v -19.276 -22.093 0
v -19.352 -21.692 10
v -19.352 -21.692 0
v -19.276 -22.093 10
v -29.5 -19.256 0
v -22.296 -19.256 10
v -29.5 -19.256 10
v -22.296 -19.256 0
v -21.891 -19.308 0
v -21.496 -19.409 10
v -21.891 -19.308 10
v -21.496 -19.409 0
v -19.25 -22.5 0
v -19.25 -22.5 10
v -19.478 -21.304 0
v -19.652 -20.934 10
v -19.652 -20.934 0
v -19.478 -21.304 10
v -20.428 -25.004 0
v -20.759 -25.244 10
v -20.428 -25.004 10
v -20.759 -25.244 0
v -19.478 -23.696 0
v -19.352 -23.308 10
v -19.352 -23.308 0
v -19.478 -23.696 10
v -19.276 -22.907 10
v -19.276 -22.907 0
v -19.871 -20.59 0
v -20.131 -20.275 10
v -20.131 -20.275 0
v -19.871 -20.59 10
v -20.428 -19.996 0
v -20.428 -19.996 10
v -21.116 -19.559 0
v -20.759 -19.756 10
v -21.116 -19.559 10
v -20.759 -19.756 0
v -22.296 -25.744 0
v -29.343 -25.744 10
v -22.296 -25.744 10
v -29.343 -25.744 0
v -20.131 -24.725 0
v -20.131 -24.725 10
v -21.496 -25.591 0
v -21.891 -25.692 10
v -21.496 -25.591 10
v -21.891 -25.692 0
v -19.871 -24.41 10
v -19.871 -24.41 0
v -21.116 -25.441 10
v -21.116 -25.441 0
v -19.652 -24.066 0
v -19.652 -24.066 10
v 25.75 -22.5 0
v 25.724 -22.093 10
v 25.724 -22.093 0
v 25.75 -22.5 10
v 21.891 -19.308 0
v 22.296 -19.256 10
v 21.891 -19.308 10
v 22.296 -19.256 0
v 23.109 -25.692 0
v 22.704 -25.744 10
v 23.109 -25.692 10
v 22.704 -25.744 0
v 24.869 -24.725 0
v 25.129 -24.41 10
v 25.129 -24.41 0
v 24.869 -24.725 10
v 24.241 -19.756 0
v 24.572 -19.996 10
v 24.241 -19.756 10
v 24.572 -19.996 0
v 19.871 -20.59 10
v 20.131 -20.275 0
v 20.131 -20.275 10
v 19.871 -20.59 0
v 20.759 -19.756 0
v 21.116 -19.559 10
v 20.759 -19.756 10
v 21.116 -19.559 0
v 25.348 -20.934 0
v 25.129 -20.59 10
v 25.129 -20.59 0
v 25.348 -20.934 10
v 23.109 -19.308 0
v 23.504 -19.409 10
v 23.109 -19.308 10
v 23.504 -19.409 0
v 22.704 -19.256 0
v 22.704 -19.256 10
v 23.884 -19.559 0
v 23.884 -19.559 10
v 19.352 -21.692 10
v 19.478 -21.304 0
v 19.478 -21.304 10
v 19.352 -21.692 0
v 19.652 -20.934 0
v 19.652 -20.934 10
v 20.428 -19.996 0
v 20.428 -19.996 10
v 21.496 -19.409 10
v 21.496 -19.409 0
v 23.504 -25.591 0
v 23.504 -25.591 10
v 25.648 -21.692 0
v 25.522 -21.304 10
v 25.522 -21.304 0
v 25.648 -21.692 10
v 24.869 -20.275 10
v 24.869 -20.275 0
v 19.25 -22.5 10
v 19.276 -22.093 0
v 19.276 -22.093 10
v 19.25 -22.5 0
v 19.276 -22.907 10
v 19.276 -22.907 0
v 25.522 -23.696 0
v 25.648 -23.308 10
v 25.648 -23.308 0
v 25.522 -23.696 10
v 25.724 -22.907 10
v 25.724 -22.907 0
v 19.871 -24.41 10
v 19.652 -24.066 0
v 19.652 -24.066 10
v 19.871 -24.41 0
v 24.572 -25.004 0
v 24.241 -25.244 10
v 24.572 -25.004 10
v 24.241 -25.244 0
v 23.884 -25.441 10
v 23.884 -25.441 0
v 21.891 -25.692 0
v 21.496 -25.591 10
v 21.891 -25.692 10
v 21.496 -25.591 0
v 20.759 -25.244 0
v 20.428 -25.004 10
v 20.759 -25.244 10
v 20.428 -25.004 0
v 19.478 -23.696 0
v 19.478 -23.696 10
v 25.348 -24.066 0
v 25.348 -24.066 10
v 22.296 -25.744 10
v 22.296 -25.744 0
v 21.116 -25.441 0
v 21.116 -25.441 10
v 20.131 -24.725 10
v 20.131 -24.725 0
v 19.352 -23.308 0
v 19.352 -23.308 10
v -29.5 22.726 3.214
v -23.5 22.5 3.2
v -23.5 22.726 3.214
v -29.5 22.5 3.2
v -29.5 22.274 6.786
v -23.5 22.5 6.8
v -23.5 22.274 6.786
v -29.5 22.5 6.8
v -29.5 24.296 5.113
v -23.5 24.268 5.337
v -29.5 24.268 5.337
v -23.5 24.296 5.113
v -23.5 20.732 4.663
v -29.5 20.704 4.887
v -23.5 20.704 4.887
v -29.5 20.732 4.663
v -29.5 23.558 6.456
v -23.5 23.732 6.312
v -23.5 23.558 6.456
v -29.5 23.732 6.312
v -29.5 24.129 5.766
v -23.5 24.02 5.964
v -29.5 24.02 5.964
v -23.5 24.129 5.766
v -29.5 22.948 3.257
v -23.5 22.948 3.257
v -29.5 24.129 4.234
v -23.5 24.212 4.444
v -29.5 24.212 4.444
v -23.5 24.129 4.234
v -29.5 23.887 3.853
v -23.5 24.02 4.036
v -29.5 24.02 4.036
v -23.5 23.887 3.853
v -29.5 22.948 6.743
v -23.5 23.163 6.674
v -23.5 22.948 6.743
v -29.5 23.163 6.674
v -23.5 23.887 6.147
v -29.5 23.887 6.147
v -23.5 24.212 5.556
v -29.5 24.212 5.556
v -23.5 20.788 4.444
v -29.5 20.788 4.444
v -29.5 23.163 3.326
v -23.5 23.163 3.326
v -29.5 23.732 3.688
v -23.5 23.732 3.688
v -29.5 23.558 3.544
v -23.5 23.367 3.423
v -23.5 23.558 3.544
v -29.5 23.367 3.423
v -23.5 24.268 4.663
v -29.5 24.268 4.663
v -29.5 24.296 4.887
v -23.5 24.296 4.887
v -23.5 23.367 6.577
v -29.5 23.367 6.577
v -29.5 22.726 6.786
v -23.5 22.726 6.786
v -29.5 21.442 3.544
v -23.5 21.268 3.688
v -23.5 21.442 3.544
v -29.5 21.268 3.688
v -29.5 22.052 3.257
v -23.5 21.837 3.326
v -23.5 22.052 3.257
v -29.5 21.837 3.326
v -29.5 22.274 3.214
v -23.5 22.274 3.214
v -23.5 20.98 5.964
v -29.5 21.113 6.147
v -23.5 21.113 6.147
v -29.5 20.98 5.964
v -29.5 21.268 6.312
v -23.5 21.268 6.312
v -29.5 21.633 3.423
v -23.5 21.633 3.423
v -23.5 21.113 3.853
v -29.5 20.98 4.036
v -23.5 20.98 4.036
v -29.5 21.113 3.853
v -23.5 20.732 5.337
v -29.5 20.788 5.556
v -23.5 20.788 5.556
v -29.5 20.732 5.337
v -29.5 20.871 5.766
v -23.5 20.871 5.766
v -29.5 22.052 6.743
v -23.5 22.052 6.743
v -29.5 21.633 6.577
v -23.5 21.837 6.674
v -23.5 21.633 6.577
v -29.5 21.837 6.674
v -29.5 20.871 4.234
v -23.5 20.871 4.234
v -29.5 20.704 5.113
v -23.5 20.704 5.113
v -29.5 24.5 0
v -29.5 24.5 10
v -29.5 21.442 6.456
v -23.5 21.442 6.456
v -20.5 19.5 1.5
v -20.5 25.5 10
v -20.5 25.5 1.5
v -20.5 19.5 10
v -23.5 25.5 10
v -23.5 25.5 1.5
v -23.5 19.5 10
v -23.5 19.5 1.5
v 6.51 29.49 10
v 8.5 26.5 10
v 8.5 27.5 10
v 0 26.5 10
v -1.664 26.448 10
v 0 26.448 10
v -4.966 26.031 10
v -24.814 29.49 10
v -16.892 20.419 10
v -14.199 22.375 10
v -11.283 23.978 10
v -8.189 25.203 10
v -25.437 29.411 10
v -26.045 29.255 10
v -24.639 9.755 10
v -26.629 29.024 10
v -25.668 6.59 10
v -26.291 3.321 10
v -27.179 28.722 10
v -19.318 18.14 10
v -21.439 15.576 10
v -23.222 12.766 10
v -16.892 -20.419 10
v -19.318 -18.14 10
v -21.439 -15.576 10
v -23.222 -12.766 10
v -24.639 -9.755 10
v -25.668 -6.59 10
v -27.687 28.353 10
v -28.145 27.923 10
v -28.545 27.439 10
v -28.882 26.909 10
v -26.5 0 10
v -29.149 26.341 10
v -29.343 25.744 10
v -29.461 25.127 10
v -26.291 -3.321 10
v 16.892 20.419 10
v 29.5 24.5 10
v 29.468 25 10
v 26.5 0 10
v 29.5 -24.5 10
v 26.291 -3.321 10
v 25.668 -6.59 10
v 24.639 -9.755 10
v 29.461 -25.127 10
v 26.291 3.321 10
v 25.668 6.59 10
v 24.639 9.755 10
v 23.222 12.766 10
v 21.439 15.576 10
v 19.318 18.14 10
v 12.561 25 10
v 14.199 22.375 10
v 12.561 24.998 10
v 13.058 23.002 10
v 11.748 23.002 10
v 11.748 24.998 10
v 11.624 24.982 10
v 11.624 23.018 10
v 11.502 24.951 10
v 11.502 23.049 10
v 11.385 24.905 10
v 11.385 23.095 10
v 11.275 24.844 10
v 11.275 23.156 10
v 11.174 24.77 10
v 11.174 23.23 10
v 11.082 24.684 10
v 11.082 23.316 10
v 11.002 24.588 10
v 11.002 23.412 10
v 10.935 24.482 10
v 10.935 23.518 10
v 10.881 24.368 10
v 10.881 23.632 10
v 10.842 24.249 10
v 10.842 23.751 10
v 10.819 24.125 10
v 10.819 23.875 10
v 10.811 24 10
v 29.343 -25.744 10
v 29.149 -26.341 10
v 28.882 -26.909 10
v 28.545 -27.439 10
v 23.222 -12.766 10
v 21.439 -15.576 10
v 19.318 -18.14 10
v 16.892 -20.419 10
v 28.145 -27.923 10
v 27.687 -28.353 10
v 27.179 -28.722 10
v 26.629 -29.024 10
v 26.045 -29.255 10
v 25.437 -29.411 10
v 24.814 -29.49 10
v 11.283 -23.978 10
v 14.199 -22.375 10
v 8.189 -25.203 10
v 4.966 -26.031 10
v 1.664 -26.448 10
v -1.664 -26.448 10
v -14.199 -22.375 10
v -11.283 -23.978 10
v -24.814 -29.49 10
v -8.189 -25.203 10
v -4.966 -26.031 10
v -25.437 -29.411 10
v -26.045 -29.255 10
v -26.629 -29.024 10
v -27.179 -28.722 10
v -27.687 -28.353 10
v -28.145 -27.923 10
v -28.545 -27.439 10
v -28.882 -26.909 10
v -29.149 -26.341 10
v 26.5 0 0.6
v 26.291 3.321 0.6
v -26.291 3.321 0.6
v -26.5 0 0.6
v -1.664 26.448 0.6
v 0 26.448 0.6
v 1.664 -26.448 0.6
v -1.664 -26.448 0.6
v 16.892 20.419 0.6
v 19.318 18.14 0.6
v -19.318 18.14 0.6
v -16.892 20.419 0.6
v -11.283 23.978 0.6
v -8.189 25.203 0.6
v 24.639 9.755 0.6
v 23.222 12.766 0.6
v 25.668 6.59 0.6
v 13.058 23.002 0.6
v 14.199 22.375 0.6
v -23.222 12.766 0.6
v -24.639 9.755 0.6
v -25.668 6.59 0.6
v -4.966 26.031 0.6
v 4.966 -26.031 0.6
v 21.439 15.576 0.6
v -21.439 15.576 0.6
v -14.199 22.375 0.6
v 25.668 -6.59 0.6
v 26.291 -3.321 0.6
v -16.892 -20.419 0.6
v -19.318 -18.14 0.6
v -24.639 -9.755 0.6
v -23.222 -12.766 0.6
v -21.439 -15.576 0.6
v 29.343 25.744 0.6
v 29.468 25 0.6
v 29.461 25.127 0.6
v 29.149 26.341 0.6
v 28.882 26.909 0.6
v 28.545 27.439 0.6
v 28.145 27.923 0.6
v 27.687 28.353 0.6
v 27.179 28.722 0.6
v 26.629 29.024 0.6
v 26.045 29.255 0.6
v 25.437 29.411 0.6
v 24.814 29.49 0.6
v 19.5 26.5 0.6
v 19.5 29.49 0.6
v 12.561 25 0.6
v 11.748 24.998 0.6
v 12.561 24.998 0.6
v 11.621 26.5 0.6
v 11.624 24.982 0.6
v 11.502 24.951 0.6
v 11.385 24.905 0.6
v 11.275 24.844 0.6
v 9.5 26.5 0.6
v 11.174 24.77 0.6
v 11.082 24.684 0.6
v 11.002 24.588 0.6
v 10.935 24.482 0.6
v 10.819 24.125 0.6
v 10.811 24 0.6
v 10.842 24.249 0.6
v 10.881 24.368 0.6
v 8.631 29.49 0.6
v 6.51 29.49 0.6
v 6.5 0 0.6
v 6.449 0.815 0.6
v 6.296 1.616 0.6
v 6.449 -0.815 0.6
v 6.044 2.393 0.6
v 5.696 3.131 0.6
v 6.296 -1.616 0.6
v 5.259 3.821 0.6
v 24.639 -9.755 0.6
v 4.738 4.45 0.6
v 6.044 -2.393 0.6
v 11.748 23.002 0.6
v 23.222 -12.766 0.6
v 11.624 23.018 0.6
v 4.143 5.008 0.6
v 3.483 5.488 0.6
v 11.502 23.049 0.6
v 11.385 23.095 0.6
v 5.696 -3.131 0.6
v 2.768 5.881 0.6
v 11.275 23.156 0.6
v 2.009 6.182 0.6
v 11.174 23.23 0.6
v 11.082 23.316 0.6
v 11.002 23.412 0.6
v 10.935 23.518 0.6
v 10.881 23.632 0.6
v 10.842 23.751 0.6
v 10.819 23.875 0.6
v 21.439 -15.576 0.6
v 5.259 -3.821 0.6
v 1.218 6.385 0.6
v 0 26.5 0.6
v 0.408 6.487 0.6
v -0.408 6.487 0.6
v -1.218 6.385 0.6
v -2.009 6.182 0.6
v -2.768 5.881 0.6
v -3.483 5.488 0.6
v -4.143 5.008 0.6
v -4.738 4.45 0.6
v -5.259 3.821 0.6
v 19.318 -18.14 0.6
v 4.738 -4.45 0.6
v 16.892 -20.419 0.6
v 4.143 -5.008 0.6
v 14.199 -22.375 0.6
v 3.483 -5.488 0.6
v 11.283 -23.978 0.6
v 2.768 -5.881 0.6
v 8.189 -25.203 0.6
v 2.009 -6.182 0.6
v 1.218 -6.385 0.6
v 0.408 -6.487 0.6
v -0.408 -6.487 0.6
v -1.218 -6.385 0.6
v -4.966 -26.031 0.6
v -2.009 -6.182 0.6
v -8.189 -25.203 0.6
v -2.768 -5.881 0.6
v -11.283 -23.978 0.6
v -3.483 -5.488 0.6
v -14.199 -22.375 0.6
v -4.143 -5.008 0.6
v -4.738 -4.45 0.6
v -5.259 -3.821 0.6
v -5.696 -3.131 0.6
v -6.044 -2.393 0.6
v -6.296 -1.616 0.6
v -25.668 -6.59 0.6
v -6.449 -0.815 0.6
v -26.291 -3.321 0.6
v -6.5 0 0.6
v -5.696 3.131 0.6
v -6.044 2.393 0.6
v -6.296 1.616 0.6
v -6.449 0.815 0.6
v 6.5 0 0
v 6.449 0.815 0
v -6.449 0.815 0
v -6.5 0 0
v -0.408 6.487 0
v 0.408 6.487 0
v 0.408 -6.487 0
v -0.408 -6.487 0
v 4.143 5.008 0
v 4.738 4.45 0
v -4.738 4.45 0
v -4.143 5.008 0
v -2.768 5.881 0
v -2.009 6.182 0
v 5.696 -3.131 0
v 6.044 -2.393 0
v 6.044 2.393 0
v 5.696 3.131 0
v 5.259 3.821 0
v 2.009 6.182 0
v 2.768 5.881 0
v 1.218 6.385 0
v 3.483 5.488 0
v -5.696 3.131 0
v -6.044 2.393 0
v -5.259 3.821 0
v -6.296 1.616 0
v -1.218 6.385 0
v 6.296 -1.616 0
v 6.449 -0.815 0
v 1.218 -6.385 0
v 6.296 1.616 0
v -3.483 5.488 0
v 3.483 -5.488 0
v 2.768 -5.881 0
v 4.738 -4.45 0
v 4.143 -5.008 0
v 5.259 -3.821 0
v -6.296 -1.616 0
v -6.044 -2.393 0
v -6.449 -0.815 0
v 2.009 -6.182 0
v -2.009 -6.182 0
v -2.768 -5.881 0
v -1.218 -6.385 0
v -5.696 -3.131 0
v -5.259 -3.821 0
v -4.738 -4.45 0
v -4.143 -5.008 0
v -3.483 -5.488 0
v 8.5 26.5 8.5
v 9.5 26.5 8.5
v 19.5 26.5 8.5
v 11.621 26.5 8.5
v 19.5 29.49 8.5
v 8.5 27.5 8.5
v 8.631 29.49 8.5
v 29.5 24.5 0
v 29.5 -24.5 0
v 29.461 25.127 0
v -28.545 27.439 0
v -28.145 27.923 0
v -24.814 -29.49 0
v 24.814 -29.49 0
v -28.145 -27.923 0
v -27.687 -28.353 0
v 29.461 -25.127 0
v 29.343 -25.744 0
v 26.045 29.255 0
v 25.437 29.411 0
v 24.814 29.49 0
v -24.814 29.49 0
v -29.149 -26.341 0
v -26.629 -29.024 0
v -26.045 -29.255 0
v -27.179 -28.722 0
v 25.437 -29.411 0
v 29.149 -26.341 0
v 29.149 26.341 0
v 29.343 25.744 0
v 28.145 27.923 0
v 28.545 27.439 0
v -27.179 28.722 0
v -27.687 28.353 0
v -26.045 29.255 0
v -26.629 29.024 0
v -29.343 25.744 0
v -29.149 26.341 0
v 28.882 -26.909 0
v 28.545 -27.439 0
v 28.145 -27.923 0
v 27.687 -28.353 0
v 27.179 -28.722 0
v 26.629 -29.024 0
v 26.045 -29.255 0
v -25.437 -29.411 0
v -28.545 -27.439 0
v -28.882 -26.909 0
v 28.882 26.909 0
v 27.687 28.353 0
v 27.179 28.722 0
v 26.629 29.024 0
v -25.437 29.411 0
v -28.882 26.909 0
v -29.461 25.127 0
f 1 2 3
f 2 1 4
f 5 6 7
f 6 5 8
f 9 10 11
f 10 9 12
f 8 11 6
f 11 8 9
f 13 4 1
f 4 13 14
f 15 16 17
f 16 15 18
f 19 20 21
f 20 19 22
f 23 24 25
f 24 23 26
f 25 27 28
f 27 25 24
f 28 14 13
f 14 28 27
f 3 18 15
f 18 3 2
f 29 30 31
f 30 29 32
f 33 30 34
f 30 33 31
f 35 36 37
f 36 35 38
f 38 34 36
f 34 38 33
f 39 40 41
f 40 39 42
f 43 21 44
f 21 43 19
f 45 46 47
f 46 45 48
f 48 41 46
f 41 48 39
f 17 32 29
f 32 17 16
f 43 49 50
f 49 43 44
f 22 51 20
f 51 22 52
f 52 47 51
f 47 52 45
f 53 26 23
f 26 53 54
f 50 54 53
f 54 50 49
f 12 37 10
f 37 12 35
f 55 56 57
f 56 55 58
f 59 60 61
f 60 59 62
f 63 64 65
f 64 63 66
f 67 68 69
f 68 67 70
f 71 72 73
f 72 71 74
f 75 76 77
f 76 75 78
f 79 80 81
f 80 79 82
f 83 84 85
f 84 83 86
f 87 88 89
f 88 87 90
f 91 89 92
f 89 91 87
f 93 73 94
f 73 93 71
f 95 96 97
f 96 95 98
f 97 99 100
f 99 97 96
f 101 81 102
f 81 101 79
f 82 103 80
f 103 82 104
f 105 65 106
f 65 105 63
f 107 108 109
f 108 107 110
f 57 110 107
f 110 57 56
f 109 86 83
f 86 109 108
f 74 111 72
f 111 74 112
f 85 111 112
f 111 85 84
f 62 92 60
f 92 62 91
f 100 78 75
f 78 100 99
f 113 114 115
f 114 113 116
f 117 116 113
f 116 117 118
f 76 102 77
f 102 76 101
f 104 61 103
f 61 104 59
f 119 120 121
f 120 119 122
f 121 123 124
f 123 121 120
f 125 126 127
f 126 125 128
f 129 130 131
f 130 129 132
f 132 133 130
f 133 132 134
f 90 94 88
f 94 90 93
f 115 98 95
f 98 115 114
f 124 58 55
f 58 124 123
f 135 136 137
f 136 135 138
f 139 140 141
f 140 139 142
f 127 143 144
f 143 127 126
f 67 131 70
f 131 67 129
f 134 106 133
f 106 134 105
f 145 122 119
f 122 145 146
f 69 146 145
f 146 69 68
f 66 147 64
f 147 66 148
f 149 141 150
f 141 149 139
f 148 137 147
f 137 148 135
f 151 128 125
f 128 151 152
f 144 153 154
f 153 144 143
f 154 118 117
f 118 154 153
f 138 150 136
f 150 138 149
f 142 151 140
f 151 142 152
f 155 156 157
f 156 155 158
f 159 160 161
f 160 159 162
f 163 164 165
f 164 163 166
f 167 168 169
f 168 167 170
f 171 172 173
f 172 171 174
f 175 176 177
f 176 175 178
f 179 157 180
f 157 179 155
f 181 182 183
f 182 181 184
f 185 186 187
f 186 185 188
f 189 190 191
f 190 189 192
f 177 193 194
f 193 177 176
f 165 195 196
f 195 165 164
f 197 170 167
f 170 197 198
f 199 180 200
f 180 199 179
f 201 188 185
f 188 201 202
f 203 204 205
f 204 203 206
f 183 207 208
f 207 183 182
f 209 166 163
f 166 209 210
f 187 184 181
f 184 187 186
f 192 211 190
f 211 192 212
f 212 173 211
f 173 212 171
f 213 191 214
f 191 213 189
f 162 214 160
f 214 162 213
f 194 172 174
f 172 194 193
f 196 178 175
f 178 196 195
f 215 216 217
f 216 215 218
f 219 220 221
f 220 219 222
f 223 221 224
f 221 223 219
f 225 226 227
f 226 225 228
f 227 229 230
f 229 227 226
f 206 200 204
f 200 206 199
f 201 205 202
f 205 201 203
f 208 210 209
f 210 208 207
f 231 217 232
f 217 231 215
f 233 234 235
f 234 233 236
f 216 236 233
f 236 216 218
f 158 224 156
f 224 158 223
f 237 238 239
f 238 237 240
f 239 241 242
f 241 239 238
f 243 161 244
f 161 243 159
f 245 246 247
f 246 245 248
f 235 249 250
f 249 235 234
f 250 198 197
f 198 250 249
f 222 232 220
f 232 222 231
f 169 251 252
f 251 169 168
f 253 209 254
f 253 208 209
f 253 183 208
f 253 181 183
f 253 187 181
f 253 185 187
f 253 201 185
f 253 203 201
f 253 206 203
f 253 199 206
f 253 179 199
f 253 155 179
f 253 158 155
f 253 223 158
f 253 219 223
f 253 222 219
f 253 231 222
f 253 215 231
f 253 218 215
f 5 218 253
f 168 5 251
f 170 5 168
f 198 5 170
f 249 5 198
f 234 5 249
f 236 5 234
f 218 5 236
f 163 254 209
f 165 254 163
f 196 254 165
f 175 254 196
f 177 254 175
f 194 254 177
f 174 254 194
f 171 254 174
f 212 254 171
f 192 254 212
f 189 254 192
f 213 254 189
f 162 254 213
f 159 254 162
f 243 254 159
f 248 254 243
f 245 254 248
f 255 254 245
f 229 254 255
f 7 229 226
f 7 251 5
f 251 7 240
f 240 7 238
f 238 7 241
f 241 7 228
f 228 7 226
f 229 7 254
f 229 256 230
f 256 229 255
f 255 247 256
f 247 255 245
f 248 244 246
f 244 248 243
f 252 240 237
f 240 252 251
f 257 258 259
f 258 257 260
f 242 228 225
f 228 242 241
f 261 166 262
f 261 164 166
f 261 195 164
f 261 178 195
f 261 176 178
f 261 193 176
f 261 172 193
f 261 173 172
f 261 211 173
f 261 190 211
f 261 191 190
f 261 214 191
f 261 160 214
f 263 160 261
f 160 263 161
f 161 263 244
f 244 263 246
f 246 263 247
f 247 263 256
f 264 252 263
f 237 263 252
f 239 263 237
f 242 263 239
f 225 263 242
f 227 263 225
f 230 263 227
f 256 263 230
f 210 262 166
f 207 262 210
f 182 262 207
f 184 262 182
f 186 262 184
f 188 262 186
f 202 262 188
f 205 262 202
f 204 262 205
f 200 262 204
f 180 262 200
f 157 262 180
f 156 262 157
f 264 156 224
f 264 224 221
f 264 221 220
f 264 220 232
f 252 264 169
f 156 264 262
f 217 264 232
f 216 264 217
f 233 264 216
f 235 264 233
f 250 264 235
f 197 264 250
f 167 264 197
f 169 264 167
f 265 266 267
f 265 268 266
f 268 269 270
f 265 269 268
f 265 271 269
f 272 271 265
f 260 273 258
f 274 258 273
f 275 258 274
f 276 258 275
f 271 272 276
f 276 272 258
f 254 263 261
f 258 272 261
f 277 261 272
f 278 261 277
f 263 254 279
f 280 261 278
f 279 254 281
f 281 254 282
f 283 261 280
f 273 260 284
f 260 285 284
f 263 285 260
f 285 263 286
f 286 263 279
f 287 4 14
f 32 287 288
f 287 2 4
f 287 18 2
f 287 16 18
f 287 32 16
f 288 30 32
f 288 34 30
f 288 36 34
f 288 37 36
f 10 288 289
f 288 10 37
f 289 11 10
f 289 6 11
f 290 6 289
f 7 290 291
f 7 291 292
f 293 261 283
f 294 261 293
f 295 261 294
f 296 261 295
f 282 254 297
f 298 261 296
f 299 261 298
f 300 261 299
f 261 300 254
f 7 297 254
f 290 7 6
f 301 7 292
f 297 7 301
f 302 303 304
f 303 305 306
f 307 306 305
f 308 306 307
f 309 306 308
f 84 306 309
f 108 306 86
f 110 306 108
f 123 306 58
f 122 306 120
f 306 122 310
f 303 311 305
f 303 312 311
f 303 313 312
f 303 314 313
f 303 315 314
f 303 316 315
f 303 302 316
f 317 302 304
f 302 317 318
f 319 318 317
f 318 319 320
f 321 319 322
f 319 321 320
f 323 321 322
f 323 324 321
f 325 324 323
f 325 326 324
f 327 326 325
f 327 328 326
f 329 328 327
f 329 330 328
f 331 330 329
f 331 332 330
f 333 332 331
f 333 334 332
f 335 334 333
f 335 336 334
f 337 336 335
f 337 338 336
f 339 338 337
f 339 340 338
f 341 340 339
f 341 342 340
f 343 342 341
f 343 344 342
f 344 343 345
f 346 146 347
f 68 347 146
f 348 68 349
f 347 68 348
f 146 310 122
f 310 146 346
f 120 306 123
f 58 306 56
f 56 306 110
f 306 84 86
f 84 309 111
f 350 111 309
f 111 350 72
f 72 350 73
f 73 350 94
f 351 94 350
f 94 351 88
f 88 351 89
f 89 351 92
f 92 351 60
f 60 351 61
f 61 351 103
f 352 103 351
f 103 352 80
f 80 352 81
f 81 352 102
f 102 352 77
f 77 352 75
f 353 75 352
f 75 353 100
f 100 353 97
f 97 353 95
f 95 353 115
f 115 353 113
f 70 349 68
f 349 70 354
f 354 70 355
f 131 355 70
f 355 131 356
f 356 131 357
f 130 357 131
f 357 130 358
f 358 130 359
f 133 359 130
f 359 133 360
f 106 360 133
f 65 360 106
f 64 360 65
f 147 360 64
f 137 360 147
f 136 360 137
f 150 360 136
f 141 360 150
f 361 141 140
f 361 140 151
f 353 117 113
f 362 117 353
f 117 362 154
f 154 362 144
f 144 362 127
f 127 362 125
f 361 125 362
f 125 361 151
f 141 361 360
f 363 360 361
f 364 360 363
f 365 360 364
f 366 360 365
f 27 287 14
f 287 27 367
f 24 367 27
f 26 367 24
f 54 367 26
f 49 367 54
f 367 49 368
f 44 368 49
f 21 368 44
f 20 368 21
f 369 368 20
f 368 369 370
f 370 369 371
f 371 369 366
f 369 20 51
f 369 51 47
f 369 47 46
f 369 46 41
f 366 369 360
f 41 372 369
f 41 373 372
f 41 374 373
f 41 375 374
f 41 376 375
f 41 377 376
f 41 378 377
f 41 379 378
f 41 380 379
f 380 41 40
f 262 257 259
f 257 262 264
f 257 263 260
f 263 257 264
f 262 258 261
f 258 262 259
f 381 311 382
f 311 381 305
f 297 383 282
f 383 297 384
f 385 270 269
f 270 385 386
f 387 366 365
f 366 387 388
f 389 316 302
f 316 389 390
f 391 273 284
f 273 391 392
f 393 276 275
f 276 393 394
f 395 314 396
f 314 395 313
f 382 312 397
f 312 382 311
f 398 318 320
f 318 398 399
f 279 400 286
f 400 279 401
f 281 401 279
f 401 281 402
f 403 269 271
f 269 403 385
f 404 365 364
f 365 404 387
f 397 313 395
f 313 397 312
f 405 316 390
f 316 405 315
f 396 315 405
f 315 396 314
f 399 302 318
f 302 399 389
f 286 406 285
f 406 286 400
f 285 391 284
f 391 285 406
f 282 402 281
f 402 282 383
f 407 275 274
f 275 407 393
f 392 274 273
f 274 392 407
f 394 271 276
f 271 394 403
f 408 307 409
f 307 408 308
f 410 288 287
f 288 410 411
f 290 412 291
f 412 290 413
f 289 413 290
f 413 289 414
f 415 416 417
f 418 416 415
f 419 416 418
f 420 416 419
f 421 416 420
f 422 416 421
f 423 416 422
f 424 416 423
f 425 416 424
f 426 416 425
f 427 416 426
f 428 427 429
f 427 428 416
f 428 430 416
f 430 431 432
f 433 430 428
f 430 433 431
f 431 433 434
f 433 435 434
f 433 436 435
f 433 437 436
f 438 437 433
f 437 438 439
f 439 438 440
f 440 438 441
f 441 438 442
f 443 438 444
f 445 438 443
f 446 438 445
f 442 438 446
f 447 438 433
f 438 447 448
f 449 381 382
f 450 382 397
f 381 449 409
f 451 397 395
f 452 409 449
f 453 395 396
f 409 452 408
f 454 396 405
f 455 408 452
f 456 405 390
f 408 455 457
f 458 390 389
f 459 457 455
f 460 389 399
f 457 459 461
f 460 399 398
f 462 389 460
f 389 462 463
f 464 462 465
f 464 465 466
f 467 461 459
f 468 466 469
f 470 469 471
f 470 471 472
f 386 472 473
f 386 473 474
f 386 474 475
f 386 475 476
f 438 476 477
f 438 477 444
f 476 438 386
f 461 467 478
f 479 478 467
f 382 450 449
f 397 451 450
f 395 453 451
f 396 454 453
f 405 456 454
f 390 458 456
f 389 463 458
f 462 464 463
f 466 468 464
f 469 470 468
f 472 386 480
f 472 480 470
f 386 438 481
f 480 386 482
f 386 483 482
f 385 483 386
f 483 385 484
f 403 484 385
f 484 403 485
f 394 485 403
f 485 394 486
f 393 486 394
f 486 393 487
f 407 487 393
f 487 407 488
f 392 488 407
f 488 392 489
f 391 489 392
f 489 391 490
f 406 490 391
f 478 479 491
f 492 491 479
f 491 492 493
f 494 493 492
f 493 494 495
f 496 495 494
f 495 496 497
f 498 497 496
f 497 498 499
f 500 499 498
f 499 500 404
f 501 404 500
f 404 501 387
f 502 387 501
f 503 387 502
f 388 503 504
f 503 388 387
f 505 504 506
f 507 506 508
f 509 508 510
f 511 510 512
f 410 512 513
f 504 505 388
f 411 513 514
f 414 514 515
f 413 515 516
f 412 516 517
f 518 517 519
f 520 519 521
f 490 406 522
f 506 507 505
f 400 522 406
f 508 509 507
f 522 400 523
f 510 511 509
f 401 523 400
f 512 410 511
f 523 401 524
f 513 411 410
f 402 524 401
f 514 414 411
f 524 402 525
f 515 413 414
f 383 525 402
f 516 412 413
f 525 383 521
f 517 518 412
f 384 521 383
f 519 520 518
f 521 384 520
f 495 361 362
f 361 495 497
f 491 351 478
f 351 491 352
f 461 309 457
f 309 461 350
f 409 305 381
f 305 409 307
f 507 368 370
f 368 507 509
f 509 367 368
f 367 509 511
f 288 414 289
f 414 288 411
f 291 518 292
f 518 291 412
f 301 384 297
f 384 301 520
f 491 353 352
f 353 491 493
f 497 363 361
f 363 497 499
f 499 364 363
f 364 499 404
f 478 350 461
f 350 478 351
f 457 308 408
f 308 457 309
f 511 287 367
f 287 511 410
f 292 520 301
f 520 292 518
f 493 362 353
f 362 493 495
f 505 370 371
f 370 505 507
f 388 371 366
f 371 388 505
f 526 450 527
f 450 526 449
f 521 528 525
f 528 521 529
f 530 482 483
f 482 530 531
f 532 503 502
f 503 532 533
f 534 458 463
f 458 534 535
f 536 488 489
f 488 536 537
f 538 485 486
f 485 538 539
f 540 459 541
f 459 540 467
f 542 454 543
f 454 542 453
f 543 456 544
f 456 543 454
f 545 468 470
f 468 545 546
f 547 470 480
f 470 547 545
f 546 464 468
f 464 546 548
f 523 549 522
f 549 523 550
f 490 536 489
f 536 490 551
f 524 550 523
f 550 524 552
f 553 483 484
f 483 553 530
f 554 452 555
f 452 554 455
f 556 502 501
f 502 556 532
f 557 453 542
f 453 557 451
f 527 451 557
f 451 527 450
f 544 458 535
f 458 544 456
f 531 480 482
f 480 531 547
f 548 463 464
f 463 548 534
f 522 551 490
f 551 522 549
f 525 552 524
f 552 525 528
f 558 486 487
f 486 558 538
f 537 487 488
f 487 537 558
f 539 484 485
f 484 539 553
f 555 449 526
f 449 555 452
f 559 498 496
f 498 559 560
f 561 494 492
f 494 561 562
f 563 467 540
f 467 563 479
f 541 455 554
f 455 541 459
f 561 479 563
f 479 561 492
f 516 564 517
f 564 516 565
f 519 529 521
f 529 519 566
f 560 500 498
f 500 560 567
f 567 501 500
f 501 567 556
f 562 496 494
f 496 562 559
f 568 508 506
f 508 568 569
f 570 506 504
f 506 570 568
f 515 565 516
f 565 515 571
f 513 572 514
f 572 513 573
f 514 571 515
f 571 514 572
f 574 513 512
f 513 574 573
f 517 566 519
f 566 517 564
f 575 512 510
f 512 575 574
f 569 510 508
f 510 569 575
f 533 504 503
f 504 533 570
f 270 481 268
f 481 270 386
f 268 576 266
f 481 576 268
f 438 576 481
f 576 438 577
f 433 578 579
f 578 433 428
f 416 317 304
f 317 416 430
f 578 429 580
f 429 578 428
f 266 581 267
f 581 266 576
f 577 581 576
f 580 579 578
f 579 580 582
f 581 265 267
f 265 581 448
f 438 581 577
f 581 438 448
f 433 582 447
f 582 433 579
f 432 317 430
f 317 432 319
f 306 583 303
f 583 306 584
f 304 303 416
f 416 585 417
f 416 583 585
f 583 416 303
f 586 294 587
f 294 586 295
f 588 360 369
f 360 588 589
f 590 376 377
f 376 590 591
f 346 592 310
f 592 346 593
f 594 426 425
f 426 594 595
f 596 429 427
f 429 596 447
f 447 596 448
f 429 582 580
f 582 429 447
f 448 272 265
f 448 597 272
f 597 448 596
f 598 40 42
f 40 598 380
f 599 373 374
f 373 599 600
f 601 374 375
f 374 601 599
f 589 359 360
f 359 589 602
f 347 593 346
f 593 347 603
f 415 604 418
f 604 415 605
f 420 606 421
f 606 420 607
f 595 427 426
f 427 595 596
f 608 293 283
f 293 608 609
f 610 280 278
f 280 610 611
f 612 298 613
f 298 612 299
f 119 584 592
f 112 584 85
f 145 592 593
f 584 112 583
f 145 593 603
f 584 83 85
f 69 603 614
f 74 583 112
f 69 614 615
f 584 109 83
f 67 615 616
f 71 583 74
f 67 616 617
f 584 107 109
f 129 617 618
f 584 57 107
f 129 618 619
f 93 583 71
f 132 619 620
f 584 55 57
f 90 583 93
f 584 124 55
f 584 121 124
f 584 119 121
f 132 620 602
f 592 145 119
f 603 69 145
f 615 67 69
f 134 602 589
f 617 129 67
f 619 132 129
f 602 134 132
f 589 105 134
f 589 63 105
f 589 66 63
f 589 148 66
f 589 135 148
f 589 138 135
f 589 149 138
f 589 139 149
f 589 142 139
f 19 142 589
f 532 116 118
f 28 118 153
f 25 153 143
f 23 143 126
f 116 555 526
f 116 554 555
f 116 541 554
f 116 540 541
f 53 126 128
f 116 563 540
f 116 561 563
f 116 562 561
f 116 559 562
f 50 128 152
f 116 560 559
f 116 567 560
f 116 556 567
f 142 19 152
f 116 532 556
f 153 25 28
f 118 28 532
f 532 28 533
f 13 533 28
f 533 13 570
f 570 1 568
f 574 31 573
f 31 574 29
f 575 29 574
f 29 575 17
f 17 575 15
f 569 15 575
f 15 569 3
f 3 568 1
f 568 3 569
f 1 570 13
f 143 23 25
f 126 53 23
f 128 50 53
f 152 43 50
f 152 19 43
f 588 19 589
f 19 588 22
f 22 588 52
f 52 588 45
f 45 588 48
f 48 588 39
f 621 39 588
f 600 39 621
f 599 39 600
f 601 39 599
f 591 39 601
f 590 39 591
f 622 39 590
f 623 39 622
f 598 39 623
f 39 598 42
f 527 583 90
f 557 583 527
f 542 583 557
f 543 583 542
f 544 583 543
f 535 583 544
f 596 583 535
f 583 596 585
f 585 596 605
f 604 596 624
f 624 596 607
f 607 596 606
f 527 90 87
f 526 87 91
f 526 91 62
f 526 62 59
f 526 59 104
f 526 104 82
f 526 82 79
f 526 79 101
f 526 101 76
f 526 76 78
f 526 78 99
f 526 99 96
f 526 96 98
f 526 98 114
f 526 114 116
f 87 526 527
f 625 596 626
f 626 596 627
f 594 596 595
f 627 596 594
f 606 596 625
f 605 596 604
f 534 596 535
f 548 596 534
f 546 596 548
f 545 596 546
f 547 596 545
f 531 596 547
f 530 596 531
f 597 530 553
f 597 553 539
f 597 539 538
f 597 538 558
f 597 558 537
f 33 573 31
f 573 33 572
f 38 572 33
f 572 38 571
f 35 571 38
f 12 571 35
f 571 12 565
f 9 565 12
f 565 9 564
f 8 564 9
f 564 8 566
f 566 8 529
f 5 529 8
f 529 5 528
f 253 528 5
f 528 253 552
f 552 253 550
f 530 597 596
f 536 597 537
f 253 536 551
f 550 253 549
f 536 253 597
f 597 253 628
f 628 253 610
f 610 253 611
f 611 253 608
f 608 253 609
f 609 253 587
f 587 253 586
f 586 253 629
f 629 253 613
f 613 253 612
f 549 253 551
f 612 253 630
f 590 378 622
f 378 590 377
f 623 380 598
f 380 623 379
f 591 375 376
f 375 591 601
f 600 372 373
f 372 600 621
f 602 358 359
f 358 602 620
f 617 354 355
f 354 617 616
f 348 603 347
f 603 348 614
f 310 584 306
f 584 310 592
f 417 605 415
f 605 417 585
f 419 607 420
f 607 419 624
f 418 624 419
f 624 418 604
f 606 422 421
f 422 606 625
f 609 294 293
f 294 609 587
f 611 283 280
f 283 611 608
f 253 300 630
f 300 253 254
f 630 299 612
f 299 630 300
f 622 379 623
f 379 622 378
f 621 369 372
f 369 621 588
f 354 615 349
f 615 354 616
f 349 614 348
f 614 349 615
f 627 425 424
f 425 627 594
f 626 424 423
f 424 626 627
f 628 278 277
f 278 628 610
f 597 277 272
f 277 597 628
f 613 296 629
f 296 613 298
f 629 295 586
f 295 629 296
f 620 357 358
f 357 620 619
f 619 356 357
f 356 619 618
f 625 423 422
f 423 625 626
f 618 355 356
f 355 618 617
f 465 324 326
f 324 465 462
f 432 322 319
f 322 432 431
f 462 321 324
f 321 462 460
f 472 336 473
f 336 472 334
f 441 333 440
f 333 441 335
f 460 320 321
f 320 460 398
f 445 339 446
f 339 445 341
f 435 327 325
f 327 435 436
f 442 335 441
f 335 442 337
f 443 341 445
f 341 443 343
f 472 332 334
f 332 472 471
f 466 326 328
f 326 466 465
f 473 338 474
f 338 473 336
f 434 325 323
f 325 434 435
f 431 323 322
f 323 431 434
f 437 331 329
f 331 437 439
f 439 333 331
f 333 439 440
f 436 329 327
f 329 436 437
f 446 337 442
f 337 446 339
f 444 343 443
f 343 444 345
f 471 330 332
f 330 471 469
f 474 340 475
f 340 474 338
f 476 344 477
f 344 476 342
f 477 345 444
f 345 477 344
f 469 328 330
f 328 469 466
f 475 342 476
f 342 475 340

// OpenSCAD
$fn = 50;


union() {
	difference() {
		union() {
			translate(v = [0, 0, 0]) {
				rotate(a = [0, 0, 0]) {
					hull() {
						translate(v = [-24.5000000000, 24.5000000000, 0]) {
							rotate(a = [0, 0, 0]) {
								translate(v = [0, 0, 0]) {
									rotate(a = [0, 0, 0]) {
										cylinder(h = 10, r = 5);
									}
								}
							}
						}
						translate(v = [24.5000000000, 24.5000000000, 0]) {
							rotate(a = [0, 0, 0]) {
								translate(v = [0, 0, 0]) {
									rotate(a = [0, 0, 0]) {
										cylinder(h = 10, r = 5);
									}
								}
							}
						}
						translate(v = [-24.5000000000, -24.5000000000, 0]) {
							rotate(a = [0, 0, 0]) {
								translate(v = [0, 0, 0]) {
									rotate(a = [0, 0, 0]) {
										cylinder(h = 10, r = 5);
									}
								}
							}
						}
						translate(v = [24.5000000000, -24.5000000000, 0]) {
							rotate(a = [0, 0, 0]) {
								translate(v = [0, 0, 0]) {
									rotate(a = [0, 0, 0]) {
										cylinder(h = 10, r = 5);
									}
								}
							}
						}
					}
				}
			}
		}
		union() {
			translate(v = [-30.0000000000, -22.5000000000, -125]) {
				rotate(a = [0, 0, 0]) {
					hull() {
						translate(v = [7.5000000000, 0, 0]) {
							rotate(a = [0, 0, 0]) {
								translate(v = [0, 0, 0]) {
									rotate(a = [0, 0, 0]) {
										cylinder(h = 250, r = 3.2500000000);
									}
								}
							}
						}
						translate(v = [-7.5000000000, 0, 0]) {
							rotate(a = [0, 0, 0]) {
								translate(v = [0, 0, 0]) {
									rotate(a = [0, 0, 0]) {
										cylinder(h = 250, r = 3.2500000000);
									}
								}
							}
						}
					}
				}
			}
			translate(v = [22.5000000000, -22.5000000000, -125.0000000000]) {
				rotate(a = [0, 0, 0]) {
					cylinder(h = 250, r = 3.2500000000);
				}
			}
			translate(v = [-29.5000000000, 22.5000000000, 5.0000000000]) {
				rotate(a = [0, 90, 0]) {
					cylinder(h = 9, r = 1.8000000000);
				}
			}
			translate(v = [-23.5000000000, 19.5000000000, 1.5000000000]) {
				rotate(a = [0, 0, 0]) {
					cube(size = [3, 6, 8.5000000000]);
				}
			}
			translate(v = [0, 0, 0.6000000000]) {
				rotate(a = [0, 0, 0]) {
					cylinder(h = 12.4000000000, r = 26.5000000000);
				}
			}
			translate(v = [0, 0, -5.0000000000]) {
				rotate(a = [0, 0, 0]) {
					cylinder(h = 10, r = 6.5000000000);
				}
			}
			translate(v = [0.0000000000, 25.0000000000, 0.6000000000]) {
				rotate(a = [0, 0, 0]) {
					cube(size = [29.5000000000, 1.5000000000, 12.4000000000]);
				}
			}
			translate(v = [19.5000000000, 25.0000000000, 0.6000000000]) {
				rotate(a = [0, 0, 0]) {
					cube(size = [10, 4.5000000000, 12.4000000000]);
				}
			}
			#translate(v = [8.5000000000, 25.0000000000, 8.5000000000]) {
				rotate(a = [0, 0, 0]) {
					cube(size = [21, 4.5000000000, 1.5000000000]);
				}
			}
			translate(v = [5.7500000000, 30.2500000000, 0.6000000000]) {
				rotate(a = [0, 0, -45]) {
					cube(size = [7.5000000000, 1.5000000000, 12.4000000000]);
				}
			}
			translate(v = [5.0610000000, 23.0000000000, 0.6000000000]) {
				rotate(a = [0, 0, 0]) {
					cube(size = [7.5000000000, 2, 9.4000000000]);
				}
			}
		}
	}
	union() {
		translate(v = [14.3110000000, 24.0000000000, 0]) {
			rotate(a = [0, 0, 0]) {
				hull() {
					translate(v = [2.5000000000, 0, 0]) {
						rotate(a = [0, 0, 0]) {
							translate(v = [0, 0, 0]) {
								rotate(a = [0, 0, 0]) {
									cylinder(h = 10, r = 1.0000000000);
								}
							}
						}
					}
					translate(v = [-2.5000000000, 0, 0]) {
						rotate(a = [0, 0, 0]) {
							translate(v = [0, 0, 0]) {
								rotate(a = [0, 0, 0]) {
									cylinder(h = 10, r = 1.0000000000);
								}
							}
						}
					}
				}
			}
		}
	}
}
